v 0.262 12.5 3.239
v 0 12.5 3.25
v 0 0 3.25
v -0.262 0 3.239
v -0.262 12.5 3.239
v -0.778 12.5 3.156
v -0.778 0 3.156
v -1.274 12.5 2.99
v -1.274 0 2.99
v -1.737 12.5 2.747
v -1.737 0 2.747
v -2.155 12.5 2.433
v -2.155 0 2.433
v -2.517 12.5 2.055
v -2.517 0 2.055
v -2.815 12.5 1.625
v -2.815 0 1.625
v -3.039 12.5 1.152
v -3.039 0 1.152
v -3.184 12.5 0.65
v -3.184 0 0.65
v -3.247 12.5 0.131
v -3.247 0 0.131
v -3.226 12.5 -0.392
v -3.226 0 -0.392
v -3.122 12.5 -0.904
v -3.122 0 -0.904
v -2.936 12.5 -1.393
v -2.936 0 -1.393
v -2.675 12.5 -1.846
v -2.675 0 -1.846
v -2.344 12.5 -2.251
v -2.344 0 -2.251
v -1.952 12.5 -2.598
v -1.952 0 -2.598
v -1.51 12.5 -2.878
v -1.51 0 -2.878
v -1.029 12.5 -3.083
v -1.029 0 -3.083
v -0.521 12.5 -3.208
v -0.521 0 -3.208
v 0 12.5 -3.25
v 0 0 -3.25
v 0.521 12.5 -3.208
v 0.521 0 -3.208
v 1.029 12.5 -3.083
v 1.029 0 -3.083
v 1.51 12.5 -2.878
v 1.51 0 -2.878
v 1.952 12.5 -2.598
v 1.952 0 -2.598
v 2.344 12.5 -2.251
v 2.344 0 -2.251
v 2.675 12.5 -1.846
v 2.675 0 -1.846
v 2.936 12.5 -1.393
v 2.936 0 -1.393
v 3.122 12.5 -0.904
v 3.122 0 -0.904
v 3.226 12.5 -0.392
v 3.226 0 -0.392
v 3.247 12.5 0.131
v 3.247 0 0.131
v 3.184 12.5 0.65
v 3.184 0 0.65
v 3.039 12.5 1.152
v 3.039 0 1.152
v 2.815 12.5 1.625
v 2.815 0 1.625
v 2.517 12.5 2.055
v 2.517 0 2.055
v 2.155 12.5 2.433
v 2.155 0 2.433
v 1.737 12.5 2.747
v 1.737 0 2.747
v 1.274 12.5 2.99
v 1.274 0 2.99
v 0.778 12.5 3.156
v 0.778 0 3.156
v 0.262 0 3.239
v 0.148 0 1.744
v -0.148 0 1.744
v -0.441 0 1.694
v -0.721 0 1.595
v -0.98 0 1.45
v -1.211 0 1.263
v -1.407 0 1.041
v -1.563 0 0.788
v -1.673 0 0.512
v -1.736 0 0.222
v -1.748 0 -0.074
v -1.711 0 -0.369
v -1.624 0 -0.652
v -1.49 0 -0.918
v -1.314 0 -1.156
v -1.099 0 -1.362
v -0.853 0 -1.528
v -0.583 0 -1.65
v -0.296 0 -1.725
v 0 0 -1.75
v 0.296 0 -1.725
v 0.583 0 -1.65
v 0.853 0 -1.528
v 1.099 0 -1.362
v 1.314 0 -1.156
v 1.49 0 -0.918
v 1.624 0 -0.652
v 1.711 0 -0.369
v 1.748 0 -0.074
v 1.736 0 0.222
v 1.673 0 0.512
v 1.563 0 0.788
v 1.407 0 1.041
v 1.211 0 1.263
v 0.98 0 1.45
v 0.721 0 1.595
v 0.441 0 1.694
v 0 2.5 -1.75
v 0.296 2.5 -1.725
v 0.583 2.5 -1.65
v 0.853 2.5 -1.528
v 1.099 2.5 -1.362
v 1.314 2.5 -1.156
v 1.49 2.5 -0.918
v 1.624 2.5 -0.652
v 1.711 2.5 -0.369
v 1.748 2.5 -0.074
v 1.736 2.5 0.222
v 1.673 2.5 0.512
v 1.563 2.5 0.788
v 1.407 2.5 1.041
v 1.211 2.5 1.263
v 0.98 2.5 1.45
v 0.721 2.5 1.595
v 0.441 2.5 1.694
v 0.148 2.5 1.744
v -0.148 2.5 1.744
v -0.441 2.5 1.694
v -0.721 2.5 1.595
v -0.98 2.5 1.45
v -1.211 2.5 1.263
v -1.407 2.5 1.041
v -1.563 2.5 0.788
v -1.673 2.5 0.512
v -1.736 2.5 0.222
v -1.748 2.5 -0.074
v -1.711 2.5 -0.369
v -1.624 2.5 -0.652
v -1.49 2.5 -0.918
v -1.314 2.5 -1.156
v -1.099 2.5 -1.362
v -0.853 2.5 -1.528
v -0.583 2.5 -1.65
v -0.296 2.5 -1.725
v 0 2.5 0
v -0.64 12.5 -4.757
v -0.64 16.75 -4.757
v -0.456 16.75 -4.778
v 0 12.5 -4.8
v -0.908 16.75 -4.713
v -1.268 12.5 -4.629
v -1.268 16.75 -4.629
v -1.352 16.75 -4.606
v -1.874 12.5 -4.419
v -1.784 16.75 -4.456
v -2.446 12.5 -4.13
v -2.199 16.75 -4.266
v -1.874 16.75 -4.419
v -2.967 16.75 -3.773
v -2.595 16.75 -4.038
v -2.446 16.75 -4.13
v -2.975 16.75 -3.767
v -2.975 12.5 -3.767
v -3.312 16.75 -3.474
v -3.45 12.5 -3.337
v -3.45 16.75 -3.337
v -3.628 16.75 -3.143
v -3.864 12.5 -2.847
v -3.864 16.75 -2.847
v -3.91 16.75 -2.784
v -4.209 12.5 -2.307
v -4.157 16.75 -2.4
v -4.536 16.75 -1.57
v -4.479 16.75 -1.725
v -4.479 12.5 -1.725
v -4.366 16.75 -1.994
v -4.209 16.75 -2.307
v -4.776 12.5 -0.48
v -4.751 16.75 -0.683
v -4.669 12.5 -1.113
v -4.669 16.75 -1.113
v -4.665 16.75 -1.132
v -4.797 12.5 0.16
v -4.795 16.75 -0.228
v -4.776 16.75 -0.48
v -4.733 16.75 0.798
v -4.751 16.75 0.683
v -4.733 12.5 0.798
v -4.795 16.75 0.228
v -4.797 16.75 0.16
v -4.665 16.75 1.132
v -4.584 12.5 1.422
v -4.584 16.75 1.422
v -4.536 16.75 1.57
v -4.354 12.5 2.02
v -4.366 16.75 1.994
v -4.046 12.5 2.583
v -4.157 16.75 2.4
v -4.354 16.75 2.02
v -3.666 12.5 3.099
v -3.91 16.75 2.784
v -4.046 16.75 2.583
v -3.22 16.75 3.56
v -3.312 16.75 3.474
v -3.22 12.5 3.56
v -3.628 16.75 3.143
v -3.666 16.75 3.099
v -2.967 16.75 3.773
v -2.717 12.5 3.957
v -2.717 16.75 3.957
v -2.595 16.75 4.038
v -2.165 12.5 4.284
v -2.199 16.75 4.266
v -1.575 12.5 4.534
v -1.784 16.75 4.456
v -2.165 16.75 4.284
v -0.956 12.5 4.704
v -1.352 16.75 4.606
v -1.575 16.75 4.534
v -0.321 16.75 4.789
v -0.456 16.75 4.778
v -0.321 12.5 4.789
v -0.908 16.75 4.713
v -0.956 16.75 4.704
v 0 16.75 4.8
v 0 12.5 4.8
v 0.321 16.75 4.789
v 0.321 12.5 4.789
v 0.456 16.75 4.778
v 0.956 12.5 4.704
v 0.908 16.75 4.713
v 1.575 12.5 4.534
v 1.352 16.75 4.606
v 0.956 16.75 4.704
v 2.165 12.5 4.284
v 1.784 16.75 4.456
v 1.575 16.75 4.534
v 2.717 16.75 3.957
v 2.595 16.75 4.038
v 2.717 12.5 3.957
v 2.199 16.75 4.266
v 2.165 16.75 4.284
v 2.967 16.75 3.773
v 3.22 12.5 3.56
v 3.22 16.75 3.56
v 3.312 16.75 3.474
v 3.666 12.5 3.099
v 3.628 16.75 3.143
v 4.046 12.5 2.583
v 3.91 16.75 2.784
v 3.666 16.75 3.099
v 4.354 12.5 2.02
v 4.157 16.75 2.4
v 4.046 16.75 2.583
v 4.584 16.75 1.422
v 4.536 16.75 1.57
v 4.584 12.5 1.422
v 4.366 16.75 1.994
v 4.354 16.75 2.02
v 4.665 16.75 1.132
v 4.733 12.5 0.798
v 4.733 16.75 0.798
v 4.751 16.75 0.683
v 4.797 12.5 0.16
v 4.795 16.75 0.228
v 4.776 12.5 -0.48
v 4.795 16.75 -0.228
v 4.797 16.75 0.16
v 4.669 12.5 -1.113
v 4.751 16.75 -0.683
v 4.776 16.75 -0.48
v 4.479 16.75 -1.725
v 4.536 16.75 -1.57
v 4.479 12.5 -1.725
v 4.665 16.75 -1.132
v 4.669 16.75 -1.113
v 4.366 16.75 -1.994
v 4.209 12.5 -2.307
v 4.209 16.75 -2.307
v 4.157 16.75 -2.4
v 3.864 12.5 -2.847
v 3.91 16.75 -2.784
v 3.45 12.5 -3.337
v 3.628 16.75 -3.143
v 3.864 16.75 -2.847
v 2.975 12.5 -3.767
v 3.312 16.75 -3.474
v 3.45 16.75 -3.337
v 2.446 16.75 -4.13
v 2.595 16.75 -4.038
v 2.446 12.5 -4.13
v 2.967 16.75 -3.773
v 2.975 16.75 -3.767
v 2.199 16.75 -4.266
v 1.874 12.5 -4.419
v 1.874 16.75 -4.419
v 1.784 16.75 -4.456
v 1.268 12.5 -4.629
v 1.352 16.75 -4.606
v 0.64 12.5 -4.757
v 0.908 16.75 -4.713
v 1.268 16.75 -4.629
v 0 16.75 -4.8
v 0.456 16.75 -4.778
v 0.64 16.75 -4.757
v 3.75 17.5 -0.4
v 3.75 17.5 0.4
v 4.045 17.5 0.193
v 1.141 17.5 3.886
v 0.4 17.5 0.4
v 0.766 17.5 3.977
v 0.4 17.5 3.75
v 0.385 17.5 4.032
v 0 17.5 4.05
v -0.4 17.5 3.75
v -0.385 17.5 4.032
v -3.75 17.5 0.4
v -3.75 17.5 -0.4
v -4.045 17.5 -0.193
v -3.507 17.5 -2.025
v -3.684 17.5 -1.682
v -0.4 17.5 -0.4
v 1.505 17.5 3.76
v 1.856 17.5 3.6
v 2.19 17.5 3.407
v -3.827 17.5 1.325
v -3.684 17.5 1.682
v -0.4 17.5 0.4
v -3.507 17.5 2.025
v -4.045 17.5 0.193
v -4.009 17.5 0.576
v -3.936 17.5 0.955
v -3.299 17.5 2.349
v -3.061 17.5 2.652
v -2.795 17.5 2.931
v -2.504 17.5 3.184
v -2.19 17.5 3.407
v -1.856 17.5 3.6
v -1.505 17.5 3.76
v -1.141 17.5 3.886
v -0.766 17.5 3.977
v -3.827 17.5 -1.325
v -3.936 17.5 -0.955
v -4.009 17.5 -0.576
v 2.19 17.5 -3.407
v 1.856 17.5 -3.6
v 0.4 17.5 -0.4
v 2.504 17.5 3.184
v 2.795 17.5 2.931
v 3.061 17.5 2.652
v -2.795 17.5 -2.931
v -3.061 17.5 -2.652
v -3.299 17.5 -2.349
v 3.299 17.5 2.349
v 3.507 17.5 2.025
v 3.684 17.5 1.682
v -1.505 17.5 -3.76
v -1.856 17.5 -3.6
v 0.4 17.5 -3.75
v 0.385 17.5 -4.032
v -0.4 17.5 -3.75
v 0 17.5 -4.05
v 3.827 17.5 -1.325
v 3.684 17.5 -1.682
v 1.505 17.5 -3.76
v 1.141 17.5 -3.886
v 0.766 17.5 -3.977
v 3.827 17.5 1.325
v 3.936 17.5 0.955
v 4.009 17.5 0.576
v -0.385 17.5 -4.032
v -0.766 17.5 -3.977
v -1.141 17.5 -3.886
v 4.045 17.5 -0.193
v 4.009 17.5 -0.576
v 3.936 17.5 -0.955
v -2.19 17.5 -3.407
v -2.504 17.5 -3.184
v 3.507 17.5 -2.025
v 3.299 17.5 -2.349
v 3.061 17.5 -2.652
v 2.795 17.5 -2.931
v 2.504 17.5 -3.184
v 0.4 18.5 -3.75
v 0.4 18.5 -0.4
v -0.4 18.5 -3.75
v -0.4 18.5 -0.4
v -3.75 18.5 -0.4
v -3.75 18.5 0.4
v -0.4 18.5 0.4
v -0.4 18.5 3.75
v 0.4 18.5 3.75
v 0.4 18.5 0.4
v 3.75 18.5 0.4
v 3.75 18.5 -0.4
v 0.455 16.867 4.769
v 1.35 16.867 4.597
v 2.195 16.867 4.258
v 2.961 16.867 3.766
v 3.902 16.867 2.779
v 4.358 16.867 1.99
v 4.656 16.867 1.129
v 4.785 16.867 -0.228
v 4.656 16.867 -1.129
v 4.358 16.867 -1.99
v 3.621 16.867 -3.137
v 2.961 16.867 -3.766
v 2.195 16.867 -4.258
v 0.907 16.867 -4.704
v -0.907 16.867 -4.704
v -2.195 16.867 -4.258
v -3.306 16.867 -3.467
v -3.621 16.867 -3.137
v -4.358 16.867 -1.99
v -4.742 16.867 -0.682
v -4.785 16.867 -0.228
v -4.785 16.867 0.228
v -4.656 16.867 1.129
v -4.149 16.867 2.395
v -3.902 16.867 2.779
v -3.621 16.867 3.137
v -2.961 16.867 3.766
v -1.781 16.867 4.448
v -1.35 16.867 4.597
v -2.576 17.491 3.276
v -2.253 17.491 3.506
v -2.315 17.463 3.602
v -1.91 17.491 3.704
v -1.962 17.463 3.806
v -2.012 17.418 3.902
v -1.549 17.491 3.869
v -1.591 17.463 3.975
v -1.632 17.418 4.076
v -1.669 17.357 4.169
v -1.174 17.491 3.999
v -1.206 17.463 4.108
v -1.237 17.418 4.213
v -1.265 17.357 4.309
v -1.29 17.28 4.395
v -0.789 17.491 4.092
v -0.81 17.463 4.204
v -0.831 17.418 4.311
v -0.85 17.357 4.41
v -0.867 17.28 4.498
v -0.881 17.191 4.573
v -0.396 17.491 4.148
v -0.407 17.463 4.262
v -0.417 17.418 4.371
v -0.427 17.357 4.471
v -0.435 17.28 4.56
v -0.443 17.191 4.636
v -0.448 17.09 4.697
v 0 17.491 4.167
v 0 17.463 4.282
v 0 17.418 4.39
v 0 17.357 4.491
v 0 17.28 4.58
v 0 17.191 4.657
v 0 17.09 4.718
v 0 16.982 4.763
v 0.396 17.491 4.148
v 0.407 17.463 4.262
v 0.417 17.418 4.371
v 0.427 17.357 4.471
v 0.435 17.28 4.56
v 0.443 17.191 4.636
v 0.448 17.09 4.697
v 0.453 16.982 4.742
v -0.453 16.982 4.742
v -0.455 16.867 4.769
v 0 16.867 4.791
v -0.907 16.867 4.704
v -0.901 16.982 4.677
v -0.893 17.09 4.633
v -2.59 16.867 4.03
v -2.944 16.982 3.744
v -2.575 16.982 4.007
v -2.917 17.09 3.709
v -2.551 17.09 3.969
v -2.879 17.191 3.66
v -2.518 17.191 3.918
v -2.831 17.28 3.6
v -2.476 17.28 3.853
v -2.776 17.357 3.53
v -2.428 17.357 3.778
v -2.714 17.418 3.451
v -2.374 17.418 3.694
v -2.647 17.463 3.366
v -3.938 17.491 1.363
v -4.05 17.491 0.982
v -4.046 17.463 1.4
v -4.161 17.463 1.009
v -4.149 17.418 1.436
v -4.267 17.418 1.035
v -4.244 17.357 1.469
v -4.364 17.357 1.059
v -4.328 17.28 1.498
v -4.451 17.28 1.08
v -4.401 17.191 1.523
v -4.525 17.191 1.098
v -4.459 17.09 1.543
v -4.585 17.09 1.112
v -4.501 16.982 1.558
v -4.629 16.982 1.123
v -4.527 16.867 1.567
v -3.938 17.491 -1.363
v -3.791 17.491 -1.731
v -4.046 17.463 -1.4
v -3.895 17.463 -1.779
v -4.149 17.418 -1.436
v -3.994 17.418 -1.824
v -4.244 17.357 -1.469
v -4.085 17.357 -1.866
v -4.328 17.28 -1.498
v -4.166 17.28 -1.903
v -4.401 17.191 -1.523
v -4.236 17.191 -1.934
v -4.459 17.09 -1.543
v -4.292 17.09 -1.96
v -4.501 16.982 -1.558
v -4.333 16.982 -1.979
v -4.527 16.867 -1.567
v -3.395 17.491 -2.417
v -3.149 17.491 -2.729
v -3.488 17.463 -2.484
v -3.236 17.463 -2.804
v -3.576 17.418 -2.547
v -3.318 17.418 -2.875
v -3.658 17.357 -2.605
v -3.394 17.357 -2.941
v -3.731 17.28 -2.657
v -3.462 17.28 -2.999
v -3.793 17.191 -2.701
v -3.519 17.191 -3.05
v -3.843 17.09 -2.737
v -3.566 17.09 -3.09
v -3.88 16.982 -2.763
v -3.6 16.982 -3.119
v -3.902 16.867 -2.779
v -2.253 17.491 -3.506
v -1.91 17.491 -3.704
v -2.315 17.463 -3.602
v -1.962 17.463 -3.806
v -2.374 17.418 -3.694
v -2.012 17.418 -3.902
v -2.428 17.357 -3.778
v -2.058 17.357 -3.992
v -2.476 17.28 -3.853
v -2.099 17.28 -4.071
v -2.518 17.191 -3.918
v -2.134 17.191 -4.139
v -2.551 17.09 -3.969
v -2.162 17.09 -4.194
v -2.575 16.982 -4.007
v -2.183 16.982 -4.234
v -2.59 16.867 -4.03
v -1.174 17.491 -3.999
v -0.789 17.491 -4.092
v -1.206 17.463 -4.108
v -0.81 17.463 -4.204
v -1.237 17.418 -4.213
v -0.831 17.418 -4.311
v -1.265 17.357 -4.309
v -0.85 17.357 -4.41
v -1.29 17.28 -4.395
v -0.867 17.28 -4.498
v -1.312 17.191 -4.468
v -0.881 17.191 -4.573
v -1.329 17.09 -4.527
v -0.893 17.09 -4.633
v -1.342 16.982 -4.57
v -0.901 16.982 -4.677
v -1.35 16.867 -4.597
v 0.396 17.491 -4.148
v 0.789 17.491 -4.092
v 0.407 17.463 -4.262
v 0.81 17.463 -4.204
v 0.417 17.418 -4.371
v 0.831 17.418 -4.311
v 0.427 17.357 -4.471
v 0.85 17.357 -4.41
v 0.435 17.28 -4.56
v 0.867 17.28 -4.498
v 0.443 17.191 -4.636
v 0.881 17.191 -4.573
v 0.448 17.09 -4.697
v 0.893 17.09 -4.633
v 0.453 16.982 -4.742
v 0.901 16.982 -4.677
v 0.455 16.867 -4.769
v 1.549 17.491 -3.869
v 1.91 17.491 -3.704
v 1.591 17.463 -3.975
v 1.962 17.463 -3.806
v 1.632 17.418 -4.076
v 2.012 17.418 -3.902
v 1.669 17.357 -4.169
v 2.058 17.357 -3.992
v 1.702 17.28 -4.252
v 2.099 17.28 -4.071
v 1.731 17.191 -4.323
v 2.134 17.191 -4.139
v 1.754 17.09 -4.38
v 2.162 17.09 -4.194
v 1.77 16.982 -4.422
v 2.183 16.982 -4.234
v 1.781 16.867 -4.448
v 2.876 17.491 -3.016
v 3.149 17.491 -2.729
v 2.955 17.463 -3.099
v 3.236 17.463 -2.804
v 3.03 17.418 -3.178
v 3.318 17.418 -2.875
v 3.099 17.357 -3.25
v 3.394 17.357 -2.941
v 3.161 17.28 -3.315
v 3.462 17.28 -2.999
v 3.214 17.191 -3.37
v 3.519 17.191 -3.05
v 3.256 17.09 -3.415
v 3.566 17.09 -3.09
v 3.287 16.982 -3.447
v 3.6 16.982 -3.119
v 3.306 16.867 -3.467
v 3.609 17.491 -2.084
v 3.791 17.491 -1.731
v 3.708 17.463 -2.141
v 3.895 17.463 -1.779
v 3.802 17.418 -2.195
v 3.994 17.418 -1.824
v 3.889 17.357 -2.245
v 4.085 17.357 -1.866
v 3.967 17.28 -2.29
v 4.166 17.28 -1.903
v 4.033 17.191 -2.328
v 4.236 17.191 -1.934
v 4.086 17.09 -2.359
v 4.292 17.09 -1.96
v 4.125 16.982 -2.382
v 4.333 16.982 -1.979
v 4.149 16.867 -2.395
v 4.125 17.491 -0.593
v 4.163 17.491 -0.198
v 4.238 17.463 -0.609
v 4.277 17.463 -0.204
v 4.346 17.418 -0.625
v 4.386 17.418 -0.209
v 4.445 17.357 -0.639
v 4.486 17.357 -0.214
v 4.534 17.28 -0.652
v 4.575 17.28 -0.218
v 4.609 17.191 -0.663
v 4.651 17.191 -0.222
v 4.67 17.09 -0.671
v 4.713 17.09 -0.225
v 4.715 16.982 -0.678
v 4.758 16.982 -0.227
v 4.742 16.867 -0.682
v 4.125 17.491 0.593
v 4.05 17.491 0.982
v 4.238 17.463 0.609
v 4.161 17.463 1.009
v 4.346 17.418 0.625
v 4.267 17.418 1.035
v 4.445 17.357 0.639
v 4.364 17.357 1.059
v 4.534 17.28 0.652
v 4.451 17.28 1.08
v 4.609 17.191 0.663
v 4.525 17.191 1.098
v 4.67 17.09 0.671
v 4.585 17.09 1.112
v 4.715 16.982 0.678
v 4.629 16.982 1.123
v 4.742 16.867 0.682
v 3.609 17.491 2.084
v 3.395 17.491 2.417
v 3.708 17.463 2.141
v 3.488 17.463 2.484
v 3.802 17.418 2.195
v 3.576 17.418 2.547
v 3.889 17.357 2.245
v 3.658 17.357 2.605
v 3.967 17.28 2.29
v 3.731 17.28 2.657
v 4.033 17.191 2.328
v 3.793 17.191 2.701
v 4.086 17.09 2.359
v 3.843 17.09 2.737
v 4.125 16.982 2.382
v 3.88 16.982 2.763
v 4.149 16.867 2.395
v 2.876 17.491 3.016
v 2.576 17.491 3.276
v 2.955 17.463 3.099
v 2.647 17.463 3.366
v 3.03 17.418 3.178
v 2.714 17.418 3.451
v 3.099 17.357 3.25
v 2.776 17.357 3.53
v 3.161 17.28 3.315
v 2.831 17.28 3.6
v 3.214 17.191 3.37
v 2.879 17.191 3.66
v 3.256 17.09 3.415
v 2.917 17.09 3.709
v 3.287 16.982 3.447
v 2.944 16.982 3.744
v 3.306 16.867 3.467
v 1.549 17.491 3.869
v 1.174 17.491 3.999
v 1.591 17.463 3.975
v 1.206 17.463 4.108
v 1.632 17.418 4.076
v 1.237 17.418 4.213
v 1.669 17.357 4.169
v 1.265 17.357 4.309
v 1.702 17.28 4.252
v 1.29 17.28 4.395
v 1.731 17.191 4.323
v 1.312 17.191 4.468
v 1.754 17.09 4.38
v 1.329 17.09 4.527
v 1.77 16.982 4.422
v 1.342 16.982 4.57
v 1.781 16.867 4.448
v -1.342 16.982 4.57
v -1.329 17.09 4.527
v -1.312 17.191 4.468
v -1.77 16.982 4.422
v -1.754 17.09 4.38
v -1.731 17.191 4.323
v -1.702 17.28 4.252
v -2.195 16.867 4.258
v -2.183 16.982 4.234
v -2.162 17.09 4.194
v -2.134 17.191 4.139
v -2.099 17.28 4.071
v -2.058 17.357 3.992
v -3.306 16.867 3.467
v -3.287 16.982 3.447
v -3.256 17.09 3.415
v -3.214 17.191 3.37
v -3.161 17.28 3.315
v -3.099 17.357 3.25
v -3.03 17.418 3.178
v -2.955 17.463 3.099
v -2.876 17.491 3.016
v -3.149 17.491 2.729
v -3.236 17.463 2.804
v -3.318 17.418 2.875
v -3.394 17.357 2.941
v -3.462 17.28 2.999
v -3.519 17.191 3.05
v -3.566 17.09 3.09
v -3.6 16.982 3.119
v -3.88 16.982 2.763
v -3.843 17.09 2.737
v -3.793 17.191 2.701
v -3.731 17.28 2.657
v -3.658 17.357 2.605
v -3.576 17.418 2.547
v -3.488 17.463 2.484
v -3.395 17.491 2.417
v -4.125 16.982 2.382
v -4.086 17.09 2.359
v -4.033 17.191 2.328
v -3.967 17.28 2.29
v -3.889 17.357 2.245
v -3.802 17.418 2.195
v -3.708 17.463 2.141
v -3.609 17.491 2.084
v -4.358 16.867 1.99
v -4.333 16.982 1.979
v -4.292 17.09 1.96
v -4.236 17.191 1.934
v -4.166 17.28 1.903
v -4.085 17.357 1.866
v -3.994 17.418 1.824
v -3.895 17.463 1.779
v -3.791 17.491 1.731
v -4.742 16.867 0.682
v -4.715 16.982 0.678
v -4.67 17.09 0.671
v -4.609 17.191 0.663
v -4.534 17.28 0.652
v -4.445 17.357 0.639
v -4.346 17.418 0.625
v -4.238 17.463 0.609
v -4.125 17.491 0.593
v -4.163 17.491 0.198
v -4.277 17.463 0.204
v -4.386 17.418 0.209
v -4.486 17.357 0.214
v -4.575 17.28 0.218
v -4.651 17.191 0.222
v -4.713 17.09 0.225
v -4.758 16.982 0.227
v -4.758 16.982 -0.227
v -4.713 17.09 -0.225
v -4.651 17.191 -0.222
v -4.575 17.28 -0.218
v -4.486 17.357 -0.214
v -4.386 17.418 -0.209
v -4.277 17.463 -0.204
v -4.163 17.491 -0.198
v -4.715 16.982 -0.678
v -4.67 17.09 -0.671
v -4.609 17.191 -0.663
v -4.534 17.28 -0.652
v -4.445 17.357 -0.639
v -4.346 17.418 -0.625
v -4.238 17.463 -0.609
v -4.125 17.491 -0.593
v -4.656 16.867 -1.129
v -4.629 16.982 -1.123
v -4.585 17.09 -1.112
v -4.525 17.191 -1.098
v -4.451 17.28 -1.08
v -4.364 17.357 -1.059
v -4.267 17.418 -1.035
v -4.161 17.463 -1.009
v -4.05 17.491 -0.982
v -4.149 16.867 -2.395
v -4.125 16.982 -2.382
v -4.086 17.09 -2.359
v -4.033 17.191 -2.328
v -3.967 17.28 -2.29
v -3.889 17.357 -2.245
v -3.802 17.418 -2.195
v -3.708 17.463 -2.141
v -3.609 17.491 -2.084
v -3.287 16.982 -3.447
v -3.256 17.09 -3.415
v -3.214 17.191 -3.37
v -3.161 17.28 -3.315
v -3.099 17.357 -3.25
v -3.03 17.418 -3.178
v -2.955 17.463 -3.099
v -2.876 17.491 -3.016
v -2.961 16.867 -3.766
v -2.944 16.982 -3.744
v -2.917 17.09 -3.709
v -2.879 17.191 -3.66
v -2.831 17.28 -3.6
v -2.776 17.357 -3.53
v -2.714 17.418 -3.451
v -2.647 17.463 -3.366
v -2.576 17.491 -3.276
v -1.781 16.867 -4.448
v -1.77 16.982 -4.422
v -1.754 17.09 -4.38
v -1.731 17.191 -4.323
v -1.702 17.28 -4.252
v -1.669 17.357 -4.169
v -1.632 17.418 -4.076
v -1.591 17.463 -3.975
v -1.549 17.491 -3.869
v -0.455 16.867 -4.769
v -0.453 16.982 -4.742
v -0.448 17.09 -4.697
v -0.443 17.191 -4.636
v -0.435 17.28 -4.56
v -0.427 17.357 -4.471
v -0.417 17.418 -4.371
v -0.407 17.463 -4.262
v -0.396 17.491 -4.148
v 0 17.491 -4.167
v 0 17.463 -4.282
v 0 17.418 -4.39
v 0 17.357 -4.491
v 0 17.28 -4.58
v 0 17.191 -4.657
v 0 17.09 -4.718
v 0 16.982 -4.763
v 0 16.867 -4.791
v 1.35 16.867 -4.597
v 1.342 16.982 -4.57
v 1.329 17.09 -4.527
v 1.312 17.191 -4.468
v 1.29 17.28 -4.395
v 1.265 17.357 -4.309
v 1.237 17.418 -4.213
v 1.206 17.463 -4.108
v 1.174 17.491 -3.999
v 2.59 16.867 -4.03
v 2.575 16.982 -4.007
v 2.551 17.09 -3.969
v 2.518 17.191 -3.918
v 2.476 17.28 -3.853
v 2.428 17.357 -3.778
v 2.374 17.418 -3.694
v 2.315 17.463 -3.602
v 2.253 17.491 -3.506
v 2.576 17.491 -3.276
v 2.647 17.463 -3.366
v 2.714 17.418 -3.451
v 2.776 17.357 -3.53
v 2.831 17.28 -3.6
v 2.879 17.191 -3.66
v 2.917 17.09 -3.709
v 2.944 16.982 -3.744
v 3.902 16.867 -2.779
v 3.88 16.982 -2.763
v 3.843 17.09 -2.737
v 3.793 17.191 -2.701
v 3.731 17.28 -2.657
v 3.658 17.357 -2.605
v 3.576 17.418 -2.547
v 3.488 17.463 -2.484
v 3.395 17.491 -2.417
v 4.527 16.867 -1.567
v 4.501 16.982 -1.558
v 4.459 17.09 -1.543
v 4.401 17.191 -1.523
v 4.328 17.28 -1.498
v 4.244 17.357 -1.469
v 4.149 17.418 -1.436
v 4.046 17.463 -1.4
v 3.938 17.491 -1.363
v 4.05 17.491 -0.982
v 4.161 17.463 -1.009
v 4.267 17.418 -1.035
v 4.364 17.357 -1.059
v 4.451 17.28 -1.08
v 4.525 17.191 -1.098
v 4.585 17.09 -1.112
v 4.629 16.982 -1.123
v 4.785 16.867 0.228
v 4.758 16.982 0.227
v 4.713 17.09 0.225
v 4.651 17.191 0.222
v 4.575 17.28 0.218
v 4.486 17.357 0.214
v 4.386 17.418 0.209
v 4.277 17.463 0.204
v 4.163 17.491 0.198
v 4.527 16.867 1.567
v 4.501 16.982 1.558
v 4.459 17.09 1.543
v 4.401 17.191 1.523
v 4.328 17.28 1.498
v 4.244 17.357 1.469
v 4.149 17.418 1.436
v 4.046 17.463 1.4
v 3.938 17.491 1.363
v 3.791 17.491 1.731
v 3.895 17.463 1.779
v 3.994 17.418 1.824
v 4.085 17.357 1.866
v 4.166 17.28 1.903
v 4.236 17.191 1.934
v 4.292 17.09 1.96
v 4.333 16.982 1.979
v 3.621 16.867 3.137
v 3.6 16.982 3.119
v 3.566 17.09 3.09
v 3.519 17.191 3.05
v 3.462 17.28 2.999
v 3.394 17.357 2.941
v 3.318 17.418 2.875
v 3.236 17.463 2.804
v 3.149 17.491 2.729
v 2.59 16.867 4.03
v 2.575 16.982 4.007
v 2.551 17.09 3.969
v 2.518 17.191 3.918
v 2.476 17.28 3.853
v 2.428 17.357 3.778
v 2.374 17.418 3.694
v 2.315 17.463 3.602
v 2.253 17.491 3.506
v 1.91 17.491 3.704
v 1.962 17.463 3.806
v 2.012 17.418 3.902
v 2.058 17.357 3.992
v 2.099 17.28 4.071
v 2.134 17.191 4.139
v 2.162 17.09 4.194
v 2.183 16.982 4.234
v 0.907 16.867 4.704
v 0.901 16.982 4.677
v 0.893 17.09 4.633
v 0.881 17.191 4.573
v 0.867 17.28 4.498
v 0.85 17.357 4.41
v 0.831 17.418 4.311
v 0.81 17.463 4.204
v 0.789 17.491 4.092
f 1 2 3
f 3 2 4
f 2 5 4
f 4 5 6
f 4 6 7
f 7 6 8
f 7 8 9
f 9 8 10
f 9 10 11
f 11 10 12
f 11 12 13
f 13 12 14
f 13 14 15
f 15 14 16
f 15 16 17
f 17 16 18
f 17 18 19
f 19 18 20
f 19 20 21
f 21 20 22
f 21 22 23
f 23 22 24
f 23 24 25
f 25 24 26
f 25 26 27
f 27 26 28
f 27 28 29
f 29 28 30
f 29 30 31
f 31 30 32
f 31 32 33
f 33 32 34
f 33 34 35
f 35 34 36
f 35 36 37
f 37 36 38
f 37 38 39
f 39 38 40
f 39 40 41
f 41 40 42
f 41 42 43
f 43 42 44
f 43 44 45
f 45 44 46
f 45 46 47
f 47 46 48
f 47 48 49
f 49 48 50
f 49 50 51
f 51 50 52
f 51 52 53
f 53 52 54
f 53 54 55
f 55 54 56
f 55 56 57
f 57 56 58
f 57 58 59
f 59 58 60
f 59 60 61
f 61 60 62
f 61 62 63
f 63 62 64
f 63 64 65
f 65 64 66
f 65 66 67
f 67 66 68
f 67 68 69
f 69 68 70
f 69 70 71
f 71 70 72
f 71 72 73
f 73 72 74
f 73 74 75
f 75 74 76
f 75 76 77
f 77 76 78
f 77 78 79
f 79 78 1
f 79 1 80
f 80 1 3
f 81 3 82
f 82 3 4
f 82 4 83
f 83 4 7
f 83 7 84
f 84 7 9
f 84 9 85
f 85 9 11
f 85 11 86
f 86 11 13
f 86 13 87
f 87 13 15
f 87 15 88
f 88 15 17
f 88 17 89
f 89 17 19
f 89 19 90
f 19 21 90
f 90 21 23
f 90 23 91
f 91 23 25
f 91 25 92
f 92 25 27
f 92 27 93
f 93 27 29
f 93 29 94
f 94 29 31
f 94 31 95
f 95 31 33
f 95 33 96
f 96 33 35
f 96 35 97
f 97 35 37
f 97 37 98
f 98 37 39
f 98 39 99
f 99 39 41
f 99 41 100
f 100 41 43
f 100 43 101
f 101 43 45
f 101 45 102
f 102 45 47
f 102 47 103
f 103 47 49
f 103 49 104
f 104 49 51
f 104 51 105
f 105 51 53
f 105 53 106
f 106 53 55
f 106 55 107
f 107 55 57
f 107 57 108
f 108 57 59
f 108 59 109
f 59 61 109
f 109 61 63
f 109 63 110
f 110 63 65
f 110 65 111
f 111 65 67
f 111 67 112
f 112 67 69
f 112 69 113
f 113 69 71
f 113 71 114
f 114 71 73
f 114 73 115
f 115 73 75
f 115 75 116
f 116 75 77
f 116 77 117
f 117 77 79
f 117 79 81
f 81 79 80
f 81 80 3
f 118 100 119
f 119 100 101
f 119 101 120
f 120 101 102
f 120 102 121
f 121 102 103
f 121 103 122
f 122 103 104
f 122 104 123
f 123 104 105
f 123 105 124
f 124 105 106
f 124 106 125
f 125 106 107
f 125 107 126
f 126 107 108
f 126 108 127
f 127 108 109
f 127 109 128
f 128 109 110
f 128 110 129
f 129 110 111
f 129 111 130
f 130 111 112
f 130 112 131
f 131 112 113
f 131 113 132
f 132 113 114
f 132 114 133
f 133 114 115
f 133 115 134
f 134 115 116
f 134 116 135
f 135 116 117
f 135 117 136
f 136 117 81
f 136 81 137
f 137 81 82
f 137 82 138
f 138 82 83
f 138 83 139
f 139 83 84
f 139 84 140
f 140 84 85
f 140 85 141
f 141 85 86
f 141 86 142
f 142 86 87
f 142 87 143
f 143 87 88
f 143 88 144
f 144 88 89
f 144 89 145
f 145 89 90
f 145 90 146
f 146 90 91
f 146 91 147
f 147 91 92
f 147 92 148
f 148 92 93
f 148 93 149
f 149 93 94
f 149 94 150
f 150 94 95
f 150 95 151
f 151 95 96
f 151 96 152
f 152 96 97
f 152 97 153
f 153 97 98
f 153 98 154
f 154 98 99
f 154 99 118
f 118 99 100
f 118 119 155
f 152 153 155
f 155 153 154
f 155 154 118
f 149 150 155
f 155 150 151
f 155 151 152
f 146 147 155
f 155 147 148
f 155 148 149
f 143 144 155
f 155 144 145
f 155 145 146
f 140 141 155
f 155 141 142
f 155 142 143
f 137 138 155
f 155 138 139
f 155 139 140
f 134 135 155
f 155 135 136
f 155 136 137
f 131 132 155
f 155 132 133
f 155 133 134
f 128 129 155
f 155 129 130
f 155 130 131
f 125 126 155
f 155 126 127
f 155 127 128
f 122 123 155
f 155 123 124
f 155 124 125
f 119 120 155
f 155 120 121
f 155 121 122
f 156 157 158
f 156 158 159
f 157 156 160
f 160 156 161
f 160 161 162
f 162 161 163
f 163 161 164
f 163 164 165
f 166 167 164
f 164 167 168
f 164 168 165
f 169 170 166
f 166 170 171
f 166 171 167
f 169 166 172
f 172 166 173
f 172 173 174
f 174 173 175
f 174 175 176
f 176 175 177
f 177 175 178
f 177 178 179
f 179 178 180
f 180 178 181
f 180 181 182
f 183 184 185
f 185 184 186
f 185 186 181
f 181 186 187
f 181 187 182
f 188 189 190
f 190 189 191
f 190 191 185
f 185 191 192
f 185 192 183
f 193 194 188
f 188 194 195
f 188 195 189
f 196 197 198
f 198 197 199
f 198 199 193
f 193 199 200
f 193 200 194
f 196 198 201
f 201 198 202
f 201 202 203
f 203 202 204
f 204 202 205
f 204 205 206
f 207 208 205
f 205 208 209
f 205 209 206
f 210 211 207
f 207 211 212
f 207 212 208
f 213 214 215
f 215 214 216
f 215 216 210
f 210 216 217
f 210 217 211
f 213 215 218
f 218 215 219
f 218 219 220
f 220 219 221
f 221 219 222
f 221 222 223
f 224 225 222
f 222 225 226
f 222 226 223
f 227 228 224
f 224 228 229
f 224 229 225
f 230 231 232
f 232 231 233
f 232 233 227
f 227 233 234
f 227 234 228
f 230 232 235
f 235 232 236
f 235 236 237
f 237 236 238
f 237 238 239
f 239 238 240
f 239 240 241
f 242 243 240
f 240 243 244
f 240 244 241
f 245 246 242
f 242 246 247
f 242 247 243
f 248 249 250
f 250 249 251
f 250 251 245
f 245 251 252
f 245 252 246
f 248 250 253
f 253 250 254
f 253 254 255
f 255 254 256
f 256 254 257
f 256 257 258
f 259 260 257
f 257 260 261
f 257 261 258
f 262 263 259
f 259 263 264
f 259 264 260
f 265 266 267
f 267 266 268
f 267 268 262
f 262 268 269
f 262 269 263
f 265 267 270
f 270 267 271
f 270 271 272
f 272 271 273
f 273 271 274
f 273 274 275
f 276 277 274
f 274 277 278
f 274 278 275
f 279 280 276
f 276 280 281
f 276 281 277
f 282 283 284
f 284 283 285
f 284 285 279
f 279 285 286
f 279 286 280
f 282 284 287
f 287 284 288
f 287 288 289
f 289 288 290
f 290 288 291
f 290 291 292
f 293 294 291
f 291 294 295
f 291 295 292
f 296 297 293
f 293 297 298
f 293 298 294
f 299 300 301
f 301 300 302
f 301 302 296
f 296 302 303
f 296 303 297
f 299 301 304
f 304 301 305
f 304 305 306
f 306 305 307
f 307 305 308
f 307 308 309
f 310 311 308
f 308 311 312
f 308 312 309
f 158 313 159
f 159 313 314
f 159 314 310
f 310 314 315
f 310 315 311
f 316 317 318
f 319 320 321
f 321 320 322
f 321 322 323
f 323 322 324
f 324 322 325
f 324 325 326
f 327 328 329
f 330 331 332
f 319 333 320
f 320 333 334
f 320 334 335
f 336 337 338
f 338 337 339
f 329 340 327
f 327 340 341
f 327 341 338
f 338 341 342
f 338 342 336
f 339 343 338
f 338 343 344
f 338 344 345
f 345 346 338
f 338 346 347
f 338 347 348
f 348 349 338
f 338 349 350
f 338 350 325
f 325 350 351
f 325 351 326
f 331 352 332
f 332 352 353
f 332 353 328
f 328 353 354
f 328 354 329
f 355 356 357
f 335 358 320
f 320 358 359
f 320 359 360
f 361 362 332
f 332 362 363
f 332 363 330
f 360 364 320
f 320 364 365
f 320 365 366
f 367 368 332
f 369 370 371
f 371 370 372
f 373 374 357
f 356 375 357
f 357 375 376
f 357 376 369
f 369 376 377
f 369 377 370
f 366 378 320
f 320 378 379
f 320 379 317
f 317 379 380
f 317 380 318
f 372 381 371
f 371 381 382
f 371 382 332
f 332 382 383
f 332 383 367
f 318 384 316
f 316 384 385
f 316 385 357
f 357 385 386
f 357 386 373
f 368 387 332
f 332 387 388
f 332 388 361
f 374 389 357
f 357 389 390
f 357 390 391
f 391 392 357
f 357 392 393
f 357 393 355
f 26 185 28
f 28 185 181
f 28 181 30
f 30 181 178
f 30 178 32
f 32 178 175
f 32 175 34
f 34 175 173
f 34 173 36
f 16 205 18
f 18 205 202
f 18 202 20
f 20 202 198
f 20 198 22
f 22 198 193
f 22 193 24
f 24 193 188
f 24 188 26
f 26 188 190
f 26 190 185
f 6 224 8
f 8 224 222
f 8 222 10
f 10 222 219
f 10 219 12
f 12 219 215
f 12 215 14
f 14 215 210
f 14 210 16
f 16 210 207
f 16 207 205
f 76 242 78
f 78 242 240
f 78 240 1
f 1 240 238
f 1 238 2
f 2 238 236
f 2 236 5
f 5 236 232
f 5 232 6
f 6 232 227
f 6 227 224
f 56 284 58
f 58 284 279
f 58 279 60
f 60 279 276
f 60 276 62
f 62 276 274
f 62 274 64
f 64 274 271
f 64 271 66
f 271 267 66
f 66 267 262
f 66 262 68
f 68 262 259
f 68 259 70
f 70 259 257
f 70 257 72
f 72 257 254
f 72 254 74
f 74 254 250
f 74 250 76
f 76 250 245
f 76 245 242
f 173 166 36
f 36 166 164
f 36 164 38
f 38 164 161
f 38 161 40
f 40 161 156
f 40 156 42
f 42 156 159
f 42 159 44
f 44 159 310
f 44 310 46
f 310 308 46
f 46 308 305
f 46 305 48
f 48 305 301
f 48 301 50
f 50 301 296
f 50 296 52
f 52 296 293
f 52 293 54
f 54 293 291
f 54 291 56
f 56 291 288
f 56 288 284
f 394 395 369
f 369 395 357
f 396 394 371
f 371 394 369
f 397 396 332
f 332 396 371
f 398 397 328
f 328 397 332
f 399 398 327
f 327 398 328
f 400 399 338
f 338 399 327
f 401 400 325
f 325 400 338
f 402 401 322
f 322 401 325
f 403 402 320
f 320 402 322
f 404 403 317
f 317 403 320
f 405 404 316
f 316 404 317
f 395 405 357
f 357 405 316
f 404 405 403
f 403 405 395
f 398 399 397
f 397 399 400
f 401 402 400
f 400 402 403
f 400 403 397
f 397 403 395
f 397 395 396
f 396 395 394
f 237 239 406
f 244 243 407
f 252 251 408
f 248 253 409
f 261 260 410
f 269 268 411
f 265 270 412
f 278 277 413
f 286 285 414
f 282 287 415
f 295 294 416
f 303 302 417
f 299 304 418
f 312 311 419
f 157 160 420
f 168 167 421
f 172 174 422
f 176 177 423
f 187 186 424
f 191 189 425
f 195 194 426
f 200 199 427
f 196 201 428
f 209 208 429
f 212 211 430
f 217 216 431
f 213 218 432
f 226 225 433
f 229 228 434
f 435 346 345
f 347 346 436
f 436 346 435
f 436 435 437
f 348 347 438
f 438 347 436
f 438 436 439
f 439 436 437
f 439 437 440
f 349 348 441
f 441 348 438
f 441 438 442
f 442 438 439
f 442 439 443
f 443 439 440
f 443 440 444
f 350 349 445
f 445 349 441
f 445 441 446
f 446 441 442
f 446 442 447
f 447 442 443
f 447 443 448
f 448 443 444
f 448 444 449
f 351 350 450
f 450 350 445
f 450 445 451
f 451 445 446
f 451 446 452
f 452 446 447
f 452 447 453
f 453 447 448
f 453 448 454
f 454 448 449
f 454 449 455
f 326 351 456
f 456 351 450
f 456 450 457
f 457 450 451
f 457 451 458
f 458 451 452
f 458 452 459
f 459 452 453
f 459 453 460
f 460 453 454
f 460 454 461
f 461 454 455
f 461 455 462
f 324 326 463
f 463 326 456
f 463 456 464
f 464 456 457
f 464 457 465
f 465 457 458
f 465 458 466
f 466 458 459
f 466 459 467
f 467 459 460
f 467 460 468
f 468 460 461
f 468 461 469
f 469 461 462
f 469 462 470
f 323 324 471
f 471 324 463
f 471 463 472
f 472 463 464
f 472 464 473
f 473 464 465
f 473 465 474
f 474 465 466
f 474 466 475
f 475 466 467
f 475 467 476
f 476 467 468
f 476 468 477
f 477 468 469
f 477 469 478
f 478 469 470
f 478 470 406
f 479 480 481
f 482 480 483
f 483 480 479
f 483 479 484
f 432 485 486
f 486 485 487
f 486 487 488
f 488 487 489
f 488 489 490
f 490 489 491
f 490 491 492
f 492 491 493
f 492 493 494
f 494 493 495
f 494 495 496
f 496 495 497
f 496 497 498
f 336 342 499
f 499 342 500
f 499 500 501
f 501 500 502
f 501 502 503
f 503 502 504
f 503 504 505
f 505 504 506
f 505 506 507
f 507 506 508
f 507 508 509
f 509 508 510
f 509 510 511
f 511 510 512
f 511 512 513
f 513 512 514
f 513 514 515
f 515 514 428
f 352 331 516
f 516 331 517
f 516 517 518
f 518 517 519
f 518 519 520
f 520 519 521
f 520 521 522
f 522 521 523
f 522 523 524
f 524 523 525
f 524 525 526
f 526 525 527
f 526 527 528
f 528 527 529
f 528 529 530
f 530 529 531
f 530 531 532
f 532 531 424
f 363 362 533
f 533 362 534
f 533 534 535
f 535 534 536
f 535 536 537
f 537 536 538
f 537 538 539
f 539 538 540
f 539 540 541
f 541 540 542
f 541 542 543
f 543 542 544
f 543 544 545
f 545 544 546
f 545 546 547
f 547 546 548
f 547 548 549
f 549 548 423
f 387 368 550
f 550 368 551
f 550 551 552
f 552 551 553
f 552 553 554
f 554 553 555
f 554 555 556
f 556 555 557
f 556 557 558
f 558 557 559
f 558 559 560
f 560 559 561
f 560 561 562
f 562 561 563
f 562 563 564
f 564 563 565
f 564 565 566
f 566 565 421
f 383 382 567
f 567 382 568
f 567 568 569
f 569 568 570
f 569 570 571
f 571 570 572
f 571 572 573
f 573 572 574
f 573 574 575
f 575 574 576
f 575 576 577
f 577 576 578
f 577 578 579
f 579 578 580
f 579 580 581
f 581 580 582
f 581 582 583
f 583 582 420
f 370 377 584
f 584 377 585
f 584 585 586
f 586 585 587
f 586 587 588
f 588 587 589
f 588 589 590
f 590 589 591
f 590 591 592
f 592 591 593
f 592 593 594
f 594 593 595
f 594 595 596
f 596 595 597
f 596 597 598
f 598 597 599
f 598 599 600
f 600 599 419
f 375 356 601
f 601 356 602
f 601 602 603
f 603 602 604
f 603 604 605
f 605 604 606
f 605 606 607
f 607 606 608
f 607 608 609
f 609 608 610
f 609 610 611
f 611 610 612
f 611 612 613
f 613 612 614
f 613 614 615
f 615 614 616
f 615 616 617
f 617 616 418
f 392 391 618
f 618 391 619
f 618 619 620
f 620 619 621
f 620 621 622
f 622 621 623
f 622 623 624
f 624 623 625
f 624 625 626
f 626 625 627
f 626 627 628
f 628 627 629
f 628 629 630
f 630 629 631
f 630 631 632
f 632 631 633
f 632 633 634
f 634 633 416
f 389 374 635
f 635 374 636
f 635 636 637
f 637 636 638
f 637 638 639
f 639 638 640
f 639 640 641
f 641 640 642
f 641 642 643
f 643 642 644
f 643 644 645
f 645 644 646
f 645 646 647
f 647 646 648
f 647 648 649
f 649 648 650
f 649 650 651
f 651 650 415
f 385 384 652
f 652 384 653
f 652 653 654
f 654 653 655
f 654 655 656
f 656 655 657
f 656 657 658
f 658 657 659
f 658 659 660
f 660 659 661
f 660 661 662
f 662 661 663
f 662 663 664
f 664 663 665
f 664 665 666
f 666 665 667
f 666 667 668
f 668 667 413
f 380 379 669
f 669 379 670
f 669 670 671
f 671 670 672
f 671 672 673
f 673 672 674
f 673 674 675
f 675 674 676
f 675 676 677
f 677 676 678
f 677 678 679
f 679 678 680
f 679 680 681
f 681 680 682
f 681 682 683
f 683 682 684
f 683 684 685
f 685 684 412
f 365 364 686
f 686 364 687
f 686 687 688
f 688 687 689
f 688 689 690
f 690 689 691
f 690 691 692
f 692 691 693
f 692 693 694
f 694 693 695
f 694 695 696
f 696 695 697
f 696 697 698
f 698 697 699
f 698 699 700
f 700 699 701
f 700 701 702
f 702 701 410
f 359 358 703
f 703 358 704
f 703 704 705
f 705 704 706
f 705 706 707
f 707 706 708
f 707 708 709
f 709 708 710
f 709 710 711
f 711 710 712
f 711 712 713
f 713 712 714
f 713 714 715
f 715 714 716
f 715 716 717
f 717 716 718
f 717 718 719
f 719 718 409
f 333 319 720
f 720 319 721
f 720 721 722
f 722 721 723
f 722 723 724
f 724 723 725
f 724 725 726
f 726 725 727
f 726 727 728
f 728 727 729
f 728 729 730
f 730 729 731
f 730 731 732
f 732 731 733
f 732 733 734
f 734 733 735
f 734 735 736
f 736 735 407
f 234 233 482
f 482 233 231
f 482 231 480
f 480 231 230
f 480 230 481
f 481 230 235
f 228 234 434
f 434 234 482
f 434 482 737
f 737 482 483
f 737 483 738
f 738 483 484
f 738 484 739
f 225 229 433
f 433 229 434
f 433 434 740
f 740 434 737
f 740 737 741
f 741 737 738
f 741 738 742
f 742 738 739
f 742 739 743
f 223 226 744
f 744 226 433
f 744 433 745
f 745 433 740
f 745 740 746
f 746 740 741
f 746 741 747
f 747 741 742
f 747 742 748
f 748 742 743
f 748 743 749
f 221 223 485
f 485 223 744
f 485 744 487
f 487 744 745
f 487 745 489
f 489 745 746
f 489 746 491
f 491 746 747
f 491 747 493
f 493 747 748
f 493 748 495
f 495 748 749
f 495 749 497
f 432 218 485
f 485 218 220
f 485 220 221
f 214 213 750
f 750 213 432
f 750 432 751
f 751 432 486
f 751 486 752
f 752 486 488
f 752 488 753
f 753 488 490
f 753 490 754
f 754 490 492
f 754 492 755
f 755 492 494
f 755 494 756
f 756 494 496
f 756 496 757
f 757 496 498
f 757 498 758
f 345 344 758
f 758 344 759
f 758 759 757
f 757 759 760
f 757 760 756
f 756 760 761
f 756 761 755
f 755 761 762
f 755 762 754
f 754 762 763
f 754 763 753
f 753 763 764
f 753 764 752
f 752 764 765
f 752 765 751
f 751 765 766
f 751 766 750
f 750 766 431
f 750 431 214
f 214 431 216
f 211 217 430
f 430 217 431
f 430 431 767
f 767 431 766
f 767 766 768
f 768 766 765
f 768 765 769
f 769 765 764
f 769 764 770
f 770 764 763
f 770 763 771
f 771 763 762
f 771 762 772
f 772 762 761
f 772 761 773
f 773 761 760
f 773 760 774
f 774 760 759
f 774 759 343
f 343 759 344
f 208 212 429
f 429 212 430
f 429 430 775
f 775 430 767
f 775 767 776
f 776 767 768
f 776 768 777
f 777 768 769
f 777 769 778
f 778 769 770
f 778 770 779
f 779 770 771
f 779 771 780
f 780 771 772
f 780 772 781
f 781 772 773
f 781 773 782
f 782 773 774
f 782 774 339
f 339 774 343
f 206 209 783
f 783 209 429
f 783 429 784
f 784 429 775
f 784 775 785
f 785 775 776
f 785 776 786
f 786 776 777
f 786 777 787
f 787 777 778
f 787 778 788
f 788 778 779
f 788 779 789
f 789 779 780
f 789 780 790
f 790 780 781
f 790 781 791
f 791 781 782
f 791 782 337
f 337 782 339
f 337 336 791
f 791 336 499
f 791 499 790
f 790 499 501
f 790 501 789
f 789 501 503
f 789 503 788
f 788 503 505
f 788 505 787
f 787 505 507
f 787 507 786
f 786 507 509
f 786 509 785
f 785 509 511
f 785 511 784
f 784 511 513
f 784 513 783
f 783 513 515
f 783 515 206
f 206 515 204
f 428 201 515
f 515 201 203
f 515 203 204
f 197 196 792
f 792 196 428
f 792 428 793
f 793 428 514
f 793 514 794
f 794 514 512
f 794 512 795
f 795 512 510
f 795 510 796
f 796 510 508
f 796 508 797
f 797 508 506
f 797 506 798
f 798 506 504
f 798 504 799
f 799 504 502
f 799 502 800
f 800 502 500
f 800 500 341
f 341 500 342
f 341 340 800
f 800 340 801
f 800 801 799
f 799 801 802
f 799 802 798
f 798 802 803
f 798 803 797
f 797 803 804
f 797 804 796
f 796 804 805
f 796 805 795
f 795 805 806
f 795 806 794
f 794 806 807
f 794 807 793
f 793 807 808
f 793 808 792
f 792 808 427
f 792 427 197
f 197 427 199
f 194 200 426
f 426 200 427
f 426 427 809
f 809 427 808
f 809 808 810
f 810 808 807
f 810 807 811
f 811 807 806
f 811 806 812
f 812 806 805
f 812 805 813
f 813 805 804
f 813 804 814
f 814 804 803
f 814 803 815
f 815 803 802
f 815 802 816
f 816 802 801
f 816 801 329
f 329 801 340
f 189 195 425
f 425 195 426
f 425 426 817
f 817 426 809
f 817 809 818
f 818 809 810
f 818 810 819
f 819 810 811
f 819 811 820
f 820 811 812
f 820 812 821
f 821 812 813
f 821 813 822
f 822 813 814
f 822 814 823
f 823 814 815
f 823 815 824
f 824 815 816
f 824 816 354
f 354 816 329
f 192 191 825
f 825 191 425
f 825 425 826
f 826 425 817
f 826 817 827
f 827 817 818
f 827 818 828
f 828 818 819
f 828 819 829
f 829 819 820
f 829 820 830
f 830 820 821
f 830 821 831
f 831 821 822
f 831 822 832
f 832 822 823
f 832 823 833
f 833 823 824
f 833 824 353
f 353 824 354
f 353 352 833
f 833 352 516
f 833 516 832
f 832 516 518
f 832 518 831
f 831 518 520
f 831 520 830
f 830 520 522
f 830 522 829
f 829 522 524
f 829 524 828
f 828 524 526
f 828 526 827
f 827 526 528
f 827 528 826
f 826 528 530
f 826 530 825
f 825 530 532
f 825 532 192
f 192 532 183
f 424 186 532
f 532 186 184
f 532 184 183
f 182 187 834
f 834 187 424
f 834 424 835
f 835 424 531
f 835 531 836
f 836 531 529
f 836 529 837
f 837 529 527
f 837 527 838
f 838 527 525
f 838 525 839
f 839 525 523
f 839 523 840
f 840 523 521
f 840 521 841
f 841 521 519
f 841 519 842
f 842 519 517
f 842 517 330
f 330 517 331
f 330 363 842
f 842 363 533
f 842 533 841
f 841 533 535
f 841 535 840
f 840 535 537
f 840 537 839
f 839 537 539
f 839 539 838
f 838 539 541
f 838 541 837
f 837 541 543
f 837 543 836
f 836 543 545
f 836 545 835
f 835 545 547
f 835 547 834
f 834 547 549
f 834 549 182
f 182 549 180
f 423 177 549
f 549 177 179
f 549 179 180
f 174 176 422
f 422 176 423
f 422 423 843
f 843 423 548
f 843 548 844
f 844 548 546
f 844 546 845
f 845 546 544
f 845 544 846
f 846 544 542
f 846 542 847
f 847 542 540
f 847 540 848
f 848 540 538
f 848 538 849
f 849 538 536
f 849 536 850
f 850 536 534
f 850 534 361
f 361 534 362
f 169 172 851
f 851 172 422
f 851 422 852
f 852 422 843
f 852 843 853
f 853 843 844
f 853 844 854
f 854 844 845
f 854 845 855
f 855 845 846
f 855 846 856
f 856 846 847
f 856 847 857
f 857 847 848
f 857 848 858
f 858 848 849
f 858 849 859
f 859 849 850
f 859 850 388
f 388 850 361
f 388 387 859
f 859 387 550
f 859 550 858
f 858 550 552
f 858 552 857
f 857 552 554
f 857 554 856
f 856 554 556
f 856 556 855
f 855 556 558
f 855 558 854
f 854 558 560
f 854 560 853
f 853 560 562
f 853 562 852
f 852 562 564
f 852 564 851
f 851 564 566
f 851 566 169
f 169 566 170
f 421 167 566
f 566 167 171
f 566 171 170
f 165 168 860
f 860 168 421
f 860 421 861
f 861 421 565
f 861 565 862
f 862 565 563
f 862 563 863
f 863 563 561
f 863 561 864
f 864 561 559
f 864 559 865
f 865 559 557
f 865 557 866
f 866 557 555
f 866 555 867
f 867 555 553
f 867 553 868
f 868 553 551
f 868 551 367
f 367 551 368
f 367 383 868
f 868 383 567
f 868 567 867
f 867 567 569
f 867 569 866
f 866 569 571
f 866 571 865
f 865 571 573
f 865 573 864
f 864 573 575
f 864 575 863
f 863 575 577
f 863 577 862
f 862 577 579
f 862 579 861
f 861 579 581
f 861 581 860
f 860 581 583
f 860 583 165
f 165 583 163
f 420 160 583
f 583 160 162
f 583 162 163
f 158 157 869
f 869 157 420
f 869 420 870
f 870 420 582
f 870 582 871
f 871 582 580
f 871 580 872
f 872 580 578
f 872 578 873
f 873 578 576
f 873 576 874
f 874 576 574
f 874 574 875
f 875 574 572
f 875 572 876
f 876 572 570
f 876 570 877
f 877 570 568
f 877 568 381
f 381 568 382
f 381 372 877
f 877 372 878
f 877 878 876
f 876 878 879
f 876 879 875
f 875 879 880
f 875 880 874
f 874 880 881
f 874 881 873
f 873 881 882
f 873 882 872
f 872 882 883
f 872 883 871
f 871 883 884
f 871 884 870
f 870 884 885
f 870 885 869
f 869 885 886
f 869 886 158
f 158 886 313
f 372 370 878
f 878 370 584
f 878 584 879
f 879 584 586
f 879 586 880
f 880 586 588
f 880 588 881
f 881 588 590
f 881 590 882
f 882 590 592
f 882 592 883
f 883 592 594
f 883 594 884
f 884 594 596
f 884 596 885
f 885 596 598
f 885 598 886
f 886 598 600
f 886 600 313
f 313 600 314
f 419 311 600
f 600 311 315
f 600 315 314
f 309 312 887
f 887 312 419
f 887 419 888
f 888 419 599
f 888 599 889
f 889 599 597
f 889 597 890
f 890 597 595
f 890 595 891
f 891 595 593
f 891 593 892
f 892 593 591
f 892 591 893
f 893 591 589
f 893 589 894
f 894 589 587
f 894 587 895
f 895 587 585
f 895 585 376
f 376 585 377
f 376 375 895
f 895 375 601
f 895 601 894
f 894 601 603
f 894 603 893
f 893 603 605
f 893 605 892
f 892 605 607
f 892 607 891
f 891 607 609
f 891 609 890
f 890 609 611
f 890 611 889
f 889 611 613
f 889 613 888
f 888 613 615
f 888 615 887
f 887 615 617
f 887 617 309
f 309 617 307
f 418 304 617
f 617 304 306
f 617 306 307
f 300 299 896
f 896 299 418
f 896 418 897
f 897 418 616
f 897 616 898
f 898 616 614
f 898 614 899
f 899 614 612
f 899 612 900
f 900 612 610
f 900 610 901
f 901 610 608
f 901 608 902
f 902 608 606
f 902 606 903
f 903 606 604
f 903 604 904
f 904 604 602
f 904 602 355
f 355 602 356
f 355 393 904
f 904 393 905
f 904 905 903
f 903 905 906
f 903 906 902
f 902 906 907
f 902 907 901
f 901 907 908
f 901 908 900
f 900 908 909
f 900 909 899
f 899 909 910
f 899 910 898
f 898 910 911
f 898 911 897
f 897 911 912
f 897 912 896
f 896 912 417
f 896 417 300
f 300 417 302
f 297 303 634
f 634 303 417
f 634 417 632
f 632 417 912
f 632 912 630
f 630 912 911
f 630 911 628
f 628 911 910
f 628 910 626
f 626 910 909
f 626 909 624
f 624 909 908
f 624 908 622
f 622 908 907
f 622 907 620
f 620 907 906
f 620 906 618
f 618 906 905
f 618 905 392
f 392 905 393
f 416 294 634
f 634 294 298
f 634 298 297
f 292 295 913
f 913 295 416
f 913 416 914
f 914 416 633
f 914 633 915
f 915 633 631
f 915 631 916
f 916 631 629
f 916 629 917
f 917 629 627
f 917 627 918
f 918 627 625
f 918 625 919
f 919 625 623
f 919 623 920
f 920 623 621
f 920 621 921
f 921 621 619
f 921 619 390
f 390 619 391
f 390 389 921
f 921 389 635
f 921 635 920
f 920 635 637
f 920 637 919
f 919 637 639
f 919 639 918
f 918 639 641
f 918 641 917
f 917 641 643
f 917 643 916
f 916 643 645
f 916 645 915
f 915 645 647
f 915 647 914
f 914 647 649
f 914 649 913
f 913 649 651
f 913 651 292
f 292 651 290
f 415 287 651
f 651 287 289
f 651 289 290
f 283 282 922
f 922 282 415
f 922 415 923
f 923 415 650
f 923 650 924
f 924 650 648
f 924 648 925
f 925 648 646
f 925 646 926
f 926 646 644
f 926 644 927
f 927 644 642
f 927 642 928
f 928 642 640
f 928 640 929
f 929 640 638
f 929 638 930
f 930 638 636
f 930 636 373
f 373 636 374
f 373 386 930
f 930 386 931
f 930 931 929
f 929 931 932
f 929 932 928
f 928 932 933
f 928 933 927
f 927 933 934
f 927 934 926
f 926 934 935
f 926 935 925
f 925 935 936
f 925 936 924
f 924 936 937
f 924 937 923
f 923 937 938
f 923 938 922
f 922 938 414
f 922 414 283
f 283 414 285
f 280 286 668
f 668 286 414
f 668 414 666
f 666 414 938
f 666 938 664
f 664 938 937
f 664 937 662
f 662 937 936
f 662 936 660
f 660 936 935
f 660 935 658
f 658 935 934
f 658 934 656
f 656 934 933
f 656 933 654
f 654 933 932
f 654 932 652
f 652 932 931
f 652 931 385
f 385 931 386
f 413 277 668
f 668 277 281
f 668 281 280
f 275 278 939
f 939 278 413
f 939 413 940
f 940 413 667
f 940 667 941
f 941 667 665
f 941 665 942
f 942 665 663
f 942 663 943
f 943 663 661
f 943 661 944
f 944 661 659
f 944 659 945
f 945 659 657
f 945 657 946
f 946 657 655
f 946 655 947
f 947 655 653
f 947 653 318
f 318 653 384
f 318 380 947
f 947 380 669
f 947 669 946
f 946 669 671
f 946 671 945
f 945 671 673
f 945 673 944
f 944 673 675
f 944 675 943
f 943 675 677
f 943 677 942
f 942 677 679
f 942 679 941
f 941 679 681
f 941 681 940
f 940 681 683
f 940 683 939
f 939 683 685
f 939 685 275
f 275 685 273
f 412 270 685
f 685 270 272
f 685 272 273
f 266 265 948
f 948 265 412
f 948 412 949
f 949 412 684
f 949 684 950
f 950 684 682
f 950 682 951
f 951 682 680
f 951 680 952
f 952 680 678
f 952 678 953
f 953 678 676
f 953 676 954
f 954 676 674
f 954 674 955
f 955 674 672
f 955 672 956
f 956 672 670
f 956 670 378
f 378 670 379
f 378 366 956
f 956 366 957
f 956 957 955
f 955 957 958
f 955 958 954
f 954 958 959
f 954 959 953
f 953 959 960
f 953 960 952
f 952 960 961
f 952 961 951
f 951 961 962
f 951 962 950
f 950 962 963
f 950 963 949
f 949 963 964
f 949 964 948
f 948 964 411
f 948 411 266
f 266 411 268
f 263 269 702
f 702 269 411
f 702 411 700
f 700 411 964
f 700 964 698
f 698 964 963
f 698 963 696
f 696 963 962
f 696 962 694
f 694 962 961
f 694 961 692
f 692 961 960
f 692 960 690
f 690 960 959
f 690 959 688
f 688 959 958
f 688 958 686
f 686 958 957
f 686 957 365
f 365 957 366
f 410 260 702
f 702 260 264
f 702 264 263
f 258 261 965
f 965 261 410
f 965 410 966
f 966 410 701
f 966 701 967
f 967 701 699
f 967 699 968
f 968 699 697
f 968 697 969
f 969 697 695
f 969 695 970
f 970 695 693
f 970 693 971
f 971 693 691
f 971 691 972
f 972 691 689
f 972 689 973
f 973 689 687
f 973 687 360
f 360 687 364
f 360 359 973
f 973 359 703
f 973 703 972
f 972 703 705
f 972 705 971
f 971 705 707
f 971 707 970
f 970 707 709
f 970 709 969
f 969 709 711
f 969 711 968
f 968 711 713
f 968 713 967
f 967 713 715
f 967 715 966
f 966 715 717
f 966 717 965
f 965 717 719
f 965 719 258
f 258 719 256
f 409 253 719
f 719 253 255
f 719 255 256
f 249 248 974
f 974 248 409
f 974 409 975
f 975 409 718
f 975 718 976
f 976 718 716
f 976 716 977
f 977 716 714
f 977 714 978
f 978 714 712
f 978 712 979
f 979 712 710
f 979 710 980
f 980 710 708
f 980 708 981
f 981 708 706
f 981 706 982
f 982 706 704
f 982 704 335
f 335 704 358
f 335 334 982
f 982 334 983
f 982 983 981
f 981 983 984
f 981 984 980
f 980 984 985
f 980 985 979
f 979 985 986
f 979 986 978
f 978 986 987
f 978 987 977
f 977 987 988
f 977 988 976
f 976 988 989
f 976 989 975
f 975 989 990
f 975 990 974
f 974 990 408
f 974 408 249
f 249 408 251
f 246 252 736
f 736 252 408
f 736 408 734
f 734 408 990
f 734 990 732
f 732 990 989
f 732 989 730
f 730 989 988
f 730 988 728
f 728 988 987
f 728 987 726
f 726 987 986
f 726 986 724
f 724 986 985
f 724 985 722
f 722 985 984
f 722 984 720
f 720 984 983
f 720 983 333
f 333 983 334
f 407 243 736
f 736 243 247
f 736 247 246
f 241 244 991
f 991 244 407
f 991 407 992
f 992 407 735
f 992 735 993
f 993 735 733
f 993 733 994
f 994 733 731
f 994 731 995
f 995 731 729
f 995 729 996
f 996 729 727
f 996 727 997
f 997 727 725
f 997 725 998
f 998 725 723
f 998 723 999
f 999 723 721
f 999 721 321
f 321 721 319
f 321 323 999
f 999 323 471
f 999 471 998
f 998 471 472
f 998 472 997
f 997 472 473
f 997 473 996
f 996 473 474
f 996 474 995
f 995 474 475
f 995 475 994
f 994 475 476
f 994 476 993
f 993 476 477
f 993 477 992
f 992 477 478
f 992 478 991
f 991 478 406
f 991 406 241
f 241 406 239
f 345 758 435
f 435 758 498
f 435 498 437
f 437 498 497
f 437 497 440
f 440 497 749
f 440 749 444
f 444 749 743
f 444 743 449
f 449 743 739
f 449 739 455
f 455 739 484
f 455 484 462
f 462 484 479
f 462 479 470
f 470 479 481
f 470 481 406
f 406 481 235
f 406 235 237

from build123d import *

# Parameters (mm, degrees)
SKETCH1_R           = 3.25
BOSS_EXTRUDE1_DEPTH = 12.5
SKETCH2_R           = 1.75
CUT_EXTRUDE1_DEPTH  = 2.5
SKETCH6_R           = 4.8
BOSS_EXTRUDE2_DEPTH = 5
BOSS_EXTRUDE3_DEPTH = 1
FILLET1_R           = 0.75


with BuildPart() as part:
    # Sketch1 → Boss-Extrude1 (new body)
    with BuildSketch(Plane(origin=(0, 0, 0), x_dir=(1, 0, 0), z_dir=(0, 1, 0))):
        Circle(SKETCH1_R)
    extrude(amount=BOSS_EXTRUDE1_DEPTH)

    # Sketch2 → Cut-Extrude1 (cut)
    with BuildSketch(Plane.XZ):
        Circle(SKETCH2_R)
    extrude(amount=-CUT_EXTRUDE1_DEPTH, mode=Mode.SUBTRACT)

    # Sketch6 → Boss-Extrude2 (add)
    with BuildSketch(Plane(origin=(0, 12.5, 0), x_dir=(1, 0, 0), z_dir=(0, 1, 0))):
        Circle(SKETCH6_R)
    extrude(amount=BOSS_EXTRUDE2_DEPTH)

    # Sketch8 → Boss-Extrude3 (add)
    with BuildSketch(Plane(origin=(0, 17.5, 0), x_dir=(1, 0, 0), z_dir=(0, 1, 0))):
        Polygon((0.4, 3.75), (-0.4, 3.75), (-0.4, 0.4), (-3.75, 0.4), (-3.75, -0.4), (-0.4, -0.4), (-0.4, -3.75), (0.4, -3.75), (0.4, -0.4), (3.75, -0.4), (3.75, 0.4), (0.4, 0.4), align=None)
    extrude(amount=BOSS_EXTRUDE3_DEPTH)

    # Fillet1
    fillet1_edges = [part.edges().sort_by_distance(p)[0] for p in [
        (-4.8, 17.5, 0),
    ]]
    fillet(fillet1_edges, radius=FILLET1_R)


solid = part.part
